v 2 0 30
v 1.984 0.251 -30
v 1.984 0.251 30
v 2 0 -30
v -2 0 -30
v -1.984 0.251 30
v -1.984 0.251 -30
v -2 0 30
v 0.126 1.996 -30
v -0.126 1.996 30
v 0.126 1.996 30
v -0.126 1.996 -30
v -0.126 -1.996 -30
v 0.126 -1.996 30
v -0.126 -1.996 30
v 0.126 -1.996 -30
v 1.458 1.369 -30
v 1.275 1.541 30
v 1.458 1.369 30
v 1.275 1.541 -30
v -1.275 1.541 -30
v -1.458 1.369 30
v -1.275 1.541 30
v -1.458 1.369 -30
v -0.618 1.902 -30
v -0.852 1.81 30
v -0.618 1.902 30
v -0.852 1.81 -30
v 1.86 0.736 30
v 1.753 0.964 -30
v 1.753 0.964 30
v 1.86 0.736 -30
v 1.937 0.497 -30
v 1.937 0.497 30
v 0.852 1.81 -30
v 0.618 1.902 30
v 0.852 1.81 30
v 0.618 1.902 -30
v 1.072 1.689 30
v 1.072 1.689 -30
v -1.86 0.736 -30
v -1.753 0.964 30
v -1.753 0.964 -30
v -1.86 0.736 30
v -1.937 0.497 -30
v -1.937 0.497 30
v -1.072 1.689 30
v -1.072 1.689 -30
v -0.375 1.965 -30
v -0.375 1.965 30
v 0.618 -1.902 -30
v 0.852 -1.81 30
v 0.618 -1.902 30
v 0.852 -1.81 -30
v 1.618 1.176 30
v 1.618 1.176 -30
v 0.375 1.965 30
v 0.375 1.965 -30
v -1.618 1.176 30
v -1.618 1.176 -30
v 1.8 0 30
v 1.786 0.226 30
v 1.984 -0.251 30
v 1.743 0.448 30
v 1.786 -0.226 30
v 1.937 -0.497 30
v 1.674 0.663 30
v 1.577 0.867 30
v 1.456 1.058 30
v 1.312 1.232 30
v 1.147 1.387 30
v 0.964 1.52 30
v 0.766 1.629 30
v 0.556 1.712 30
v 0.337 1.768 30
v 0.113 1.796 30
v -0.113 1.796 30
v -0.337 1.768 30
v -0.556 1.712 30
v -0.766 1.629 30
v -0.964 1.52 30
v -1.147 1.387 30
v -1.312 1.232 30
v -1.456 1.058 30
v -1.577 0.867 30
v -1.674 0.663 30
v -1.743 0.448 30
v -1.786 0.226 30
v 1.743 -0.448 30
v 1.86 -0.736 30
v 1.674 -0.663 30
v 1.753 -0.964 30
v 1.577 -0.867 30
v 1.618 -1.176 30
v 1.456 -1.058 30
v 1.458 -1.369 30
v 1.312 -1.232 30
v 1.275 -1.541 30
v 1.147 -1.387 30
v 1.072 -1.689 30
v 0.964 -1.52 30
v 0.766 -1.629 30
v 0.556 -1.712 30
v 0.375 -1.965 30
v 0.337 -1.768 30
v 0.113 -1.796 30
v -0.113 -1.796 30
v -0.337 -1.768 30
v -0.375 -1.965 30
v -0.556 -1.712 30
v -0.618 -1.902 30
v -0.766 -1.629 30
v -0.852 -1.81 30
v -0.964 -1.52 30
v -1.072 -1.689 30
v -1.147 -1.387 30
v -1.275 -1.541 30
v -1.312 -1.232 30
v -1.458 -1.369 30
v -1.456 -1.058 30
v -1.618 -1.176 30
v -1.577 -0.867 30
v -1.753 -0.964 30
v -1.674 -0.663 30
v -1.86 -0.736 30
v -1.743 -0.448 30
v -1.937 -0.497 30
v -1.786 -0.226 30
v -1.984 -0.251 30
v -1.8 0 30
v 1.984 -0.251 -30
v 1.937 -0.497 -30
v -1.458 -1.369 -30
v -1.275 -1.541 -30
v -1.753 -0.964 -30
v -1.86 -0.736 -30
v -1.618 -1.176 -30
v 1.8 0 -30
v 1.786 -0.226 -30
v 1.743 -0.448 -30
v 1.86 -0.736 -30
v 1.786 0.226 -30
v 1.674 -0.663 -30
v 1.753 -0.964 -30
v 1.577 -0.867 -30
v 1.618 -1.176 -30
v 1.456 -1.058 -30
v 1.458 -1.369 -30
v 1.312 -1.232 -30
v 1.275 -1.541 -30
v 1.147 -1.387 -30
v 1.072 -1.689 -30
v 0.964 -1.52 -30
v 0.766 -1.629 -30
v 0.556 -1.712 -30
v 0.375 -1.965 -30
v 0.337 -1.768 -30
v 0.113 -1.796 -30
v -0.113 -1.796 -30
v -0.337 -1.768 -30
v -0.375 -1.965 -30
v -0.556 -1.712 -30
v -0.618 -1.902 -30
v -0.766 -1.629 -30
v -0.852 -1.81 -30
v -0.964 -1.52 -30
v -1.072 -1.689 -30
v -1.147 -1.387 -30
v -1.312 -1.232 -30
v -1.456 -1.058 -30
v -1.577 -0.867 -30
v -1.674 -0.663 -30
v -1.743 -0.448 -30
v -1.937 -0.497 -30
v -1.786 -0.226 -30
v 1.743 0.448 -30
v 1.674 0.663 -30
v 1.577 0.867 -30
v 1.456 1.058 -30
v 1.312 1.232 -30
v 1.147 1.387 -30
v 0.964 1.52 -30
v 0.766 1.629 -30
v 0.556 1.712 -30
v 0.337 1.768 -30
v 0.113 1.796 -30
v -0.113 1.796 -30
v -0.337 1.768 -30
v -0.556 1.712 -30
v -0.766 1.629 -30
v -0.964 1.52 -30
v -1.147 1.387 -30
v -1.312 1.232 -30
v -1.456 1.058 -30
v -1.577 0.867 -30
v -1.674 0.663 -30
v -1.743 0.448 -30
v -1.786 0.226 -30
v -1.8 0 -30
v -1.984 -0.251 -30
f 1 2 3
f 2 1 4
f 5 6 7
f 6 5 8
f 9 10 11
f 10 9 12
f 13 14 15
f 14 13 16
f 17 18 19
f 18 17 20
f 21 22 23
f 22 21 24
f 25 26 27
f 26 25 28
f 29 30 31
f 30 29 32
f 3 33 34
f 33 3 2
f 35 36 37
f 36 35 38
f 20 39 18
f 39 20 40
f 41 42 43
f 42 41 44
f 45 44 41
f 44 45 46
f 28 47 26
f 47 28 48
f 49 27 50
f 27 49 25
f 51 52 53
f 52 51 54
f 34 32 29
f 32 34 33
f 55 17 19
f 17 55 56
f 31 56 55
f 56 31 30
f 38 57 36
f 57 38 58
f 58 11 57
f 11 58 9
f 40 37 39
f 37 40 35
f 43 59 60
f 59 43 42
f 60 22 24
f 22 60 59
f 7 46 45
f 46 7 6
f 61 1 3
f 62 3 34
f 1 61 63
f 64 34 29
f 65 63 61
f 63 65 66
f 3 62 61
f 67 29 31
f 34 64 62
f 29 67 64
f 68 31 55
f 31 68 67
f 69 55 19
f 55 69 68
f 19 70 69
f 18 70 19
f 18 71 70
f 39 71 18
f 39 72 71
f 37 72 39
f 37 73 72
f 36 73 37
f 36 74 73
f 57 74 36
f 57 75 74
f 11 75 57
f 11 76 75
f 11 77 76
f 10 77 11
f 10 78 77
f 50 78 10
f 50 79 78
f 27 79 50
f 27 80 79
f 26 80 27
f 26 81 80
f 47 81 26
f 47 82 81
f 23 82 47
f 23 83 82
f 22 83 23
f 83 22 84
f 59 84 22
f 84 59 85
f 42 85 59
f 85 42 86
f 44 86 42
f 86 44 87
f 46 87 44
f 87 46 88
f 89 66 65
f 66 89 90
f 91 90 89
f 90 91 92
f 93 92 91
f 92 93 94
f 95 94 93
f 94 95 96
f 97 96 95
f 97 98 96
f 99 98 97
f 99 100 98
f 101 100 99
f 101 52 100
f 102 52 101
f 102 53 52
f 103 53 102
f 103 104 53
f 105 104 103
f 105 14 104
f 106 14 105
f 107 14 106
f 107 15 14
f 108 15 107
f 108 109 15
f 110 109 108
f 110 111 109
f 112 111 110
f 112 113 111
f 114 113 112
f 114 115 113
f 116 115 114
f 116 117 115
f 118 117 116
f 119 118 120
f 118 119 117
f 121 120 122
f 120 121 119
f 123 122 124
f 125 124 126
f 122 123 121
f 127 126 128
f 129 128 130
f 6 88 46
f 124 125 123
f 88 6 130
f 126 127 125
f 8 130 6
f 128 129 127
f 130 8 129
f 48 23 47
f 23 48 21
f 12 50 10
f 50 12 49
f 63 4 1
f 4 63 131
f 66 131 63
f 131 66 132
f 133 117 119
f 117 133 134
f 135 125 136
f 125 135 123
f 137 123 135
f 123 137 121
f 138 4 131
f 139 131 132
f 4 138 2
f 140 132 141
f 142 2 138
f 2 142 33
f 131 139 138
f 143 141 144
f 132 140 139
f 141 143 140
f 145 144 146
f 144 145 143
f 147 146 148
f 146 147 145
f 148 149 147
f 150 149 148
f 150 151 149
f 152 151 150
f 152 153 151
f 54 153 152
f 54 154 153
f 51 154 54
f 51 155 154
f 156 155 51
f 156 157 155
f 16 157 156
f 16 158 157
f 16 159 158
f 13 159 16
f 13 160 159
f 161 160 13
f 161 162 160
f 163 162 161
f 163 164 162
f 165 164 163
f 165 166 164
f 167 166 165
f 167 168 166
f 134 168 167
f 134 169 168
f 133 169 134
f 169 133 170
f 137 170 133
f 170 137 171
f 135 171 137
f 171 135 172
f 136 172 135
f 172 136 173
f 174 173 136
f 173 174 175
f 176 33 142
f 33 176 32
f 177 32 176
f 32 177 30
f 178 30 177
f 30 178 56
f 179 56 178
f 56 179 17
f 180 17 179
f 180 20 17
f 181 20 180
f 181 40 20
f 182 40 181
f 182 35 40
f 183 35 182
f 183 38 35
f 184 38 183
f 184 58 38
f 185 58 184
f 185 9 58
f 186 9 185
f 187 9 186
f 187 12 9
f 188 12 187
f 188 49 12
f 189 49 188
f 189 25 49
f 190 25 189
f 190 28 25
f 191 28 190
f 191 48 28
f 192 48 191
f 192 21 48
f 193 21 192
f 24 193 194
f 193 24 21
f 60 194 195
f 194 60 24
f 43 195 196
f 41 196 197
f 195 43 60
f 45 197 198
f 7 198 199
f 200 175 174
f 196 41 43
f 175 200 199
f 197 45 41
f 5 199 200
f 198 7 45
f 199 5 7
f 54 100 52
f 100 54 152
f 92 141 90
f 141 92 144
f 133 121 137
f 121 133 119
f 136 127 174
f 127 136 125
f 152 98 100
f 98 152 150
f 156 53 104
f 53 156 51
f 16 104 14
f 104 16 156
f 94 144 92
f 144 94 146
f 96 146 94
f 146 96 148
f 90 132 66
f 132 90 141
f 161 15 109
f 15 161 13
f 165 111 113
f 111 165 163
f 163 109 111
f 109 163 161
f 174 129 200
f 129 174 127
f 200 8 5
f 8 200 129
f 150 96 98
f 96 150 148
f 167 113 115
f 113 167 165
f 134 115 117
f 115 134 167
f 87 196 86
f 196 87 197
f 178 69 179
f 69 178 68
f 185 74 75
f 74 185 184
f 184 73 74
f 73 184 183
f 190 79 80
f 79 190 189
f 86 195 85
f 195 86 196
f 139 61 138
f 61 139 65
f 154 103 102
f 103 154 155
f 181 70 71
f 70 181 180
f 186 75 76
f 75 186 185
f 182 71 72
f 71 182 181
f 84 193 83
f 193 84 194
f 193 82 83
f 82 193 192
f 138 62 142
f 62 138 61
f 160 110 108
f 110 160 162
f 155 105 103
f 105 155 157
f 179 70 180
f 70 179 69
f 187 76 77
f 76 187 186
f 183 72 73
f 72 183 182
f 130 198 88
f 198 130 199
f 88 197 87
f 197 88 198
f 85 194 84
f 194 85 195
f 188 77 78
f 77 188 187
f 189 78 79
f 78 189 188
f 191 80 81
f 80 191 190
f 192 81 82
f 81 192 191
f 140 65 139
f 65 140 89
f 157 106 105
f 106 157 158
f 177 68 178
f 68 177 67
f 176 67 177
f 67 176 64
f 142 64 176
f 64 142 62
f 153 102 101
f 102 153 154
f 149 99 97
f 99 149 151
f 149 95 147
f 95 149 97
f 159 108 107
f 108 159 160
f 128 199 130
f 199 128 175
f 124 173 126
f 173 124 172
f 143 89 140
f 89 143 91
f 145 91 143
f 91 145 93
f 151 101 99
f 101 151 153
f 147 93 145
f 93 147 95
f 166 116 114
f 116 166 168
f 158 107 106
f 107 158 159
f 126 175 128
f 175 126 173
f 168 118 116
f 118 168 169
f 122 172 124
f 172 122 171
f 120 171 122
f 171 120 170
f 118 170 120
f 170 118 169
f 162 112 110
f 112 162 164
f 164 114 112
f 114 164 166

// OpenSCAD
$fn = 50;


difference() {
	union() {
		translate(v = [0, 0, -30.0000000000]) {
			cylinder(h = 60, r = 2.0000000000);
		}
	}
	union() {
		translate(v = [0, 0, -100.0000000000]) {
			cylinder(h = 200, r = 1.8000000000);
		}
	}
}
